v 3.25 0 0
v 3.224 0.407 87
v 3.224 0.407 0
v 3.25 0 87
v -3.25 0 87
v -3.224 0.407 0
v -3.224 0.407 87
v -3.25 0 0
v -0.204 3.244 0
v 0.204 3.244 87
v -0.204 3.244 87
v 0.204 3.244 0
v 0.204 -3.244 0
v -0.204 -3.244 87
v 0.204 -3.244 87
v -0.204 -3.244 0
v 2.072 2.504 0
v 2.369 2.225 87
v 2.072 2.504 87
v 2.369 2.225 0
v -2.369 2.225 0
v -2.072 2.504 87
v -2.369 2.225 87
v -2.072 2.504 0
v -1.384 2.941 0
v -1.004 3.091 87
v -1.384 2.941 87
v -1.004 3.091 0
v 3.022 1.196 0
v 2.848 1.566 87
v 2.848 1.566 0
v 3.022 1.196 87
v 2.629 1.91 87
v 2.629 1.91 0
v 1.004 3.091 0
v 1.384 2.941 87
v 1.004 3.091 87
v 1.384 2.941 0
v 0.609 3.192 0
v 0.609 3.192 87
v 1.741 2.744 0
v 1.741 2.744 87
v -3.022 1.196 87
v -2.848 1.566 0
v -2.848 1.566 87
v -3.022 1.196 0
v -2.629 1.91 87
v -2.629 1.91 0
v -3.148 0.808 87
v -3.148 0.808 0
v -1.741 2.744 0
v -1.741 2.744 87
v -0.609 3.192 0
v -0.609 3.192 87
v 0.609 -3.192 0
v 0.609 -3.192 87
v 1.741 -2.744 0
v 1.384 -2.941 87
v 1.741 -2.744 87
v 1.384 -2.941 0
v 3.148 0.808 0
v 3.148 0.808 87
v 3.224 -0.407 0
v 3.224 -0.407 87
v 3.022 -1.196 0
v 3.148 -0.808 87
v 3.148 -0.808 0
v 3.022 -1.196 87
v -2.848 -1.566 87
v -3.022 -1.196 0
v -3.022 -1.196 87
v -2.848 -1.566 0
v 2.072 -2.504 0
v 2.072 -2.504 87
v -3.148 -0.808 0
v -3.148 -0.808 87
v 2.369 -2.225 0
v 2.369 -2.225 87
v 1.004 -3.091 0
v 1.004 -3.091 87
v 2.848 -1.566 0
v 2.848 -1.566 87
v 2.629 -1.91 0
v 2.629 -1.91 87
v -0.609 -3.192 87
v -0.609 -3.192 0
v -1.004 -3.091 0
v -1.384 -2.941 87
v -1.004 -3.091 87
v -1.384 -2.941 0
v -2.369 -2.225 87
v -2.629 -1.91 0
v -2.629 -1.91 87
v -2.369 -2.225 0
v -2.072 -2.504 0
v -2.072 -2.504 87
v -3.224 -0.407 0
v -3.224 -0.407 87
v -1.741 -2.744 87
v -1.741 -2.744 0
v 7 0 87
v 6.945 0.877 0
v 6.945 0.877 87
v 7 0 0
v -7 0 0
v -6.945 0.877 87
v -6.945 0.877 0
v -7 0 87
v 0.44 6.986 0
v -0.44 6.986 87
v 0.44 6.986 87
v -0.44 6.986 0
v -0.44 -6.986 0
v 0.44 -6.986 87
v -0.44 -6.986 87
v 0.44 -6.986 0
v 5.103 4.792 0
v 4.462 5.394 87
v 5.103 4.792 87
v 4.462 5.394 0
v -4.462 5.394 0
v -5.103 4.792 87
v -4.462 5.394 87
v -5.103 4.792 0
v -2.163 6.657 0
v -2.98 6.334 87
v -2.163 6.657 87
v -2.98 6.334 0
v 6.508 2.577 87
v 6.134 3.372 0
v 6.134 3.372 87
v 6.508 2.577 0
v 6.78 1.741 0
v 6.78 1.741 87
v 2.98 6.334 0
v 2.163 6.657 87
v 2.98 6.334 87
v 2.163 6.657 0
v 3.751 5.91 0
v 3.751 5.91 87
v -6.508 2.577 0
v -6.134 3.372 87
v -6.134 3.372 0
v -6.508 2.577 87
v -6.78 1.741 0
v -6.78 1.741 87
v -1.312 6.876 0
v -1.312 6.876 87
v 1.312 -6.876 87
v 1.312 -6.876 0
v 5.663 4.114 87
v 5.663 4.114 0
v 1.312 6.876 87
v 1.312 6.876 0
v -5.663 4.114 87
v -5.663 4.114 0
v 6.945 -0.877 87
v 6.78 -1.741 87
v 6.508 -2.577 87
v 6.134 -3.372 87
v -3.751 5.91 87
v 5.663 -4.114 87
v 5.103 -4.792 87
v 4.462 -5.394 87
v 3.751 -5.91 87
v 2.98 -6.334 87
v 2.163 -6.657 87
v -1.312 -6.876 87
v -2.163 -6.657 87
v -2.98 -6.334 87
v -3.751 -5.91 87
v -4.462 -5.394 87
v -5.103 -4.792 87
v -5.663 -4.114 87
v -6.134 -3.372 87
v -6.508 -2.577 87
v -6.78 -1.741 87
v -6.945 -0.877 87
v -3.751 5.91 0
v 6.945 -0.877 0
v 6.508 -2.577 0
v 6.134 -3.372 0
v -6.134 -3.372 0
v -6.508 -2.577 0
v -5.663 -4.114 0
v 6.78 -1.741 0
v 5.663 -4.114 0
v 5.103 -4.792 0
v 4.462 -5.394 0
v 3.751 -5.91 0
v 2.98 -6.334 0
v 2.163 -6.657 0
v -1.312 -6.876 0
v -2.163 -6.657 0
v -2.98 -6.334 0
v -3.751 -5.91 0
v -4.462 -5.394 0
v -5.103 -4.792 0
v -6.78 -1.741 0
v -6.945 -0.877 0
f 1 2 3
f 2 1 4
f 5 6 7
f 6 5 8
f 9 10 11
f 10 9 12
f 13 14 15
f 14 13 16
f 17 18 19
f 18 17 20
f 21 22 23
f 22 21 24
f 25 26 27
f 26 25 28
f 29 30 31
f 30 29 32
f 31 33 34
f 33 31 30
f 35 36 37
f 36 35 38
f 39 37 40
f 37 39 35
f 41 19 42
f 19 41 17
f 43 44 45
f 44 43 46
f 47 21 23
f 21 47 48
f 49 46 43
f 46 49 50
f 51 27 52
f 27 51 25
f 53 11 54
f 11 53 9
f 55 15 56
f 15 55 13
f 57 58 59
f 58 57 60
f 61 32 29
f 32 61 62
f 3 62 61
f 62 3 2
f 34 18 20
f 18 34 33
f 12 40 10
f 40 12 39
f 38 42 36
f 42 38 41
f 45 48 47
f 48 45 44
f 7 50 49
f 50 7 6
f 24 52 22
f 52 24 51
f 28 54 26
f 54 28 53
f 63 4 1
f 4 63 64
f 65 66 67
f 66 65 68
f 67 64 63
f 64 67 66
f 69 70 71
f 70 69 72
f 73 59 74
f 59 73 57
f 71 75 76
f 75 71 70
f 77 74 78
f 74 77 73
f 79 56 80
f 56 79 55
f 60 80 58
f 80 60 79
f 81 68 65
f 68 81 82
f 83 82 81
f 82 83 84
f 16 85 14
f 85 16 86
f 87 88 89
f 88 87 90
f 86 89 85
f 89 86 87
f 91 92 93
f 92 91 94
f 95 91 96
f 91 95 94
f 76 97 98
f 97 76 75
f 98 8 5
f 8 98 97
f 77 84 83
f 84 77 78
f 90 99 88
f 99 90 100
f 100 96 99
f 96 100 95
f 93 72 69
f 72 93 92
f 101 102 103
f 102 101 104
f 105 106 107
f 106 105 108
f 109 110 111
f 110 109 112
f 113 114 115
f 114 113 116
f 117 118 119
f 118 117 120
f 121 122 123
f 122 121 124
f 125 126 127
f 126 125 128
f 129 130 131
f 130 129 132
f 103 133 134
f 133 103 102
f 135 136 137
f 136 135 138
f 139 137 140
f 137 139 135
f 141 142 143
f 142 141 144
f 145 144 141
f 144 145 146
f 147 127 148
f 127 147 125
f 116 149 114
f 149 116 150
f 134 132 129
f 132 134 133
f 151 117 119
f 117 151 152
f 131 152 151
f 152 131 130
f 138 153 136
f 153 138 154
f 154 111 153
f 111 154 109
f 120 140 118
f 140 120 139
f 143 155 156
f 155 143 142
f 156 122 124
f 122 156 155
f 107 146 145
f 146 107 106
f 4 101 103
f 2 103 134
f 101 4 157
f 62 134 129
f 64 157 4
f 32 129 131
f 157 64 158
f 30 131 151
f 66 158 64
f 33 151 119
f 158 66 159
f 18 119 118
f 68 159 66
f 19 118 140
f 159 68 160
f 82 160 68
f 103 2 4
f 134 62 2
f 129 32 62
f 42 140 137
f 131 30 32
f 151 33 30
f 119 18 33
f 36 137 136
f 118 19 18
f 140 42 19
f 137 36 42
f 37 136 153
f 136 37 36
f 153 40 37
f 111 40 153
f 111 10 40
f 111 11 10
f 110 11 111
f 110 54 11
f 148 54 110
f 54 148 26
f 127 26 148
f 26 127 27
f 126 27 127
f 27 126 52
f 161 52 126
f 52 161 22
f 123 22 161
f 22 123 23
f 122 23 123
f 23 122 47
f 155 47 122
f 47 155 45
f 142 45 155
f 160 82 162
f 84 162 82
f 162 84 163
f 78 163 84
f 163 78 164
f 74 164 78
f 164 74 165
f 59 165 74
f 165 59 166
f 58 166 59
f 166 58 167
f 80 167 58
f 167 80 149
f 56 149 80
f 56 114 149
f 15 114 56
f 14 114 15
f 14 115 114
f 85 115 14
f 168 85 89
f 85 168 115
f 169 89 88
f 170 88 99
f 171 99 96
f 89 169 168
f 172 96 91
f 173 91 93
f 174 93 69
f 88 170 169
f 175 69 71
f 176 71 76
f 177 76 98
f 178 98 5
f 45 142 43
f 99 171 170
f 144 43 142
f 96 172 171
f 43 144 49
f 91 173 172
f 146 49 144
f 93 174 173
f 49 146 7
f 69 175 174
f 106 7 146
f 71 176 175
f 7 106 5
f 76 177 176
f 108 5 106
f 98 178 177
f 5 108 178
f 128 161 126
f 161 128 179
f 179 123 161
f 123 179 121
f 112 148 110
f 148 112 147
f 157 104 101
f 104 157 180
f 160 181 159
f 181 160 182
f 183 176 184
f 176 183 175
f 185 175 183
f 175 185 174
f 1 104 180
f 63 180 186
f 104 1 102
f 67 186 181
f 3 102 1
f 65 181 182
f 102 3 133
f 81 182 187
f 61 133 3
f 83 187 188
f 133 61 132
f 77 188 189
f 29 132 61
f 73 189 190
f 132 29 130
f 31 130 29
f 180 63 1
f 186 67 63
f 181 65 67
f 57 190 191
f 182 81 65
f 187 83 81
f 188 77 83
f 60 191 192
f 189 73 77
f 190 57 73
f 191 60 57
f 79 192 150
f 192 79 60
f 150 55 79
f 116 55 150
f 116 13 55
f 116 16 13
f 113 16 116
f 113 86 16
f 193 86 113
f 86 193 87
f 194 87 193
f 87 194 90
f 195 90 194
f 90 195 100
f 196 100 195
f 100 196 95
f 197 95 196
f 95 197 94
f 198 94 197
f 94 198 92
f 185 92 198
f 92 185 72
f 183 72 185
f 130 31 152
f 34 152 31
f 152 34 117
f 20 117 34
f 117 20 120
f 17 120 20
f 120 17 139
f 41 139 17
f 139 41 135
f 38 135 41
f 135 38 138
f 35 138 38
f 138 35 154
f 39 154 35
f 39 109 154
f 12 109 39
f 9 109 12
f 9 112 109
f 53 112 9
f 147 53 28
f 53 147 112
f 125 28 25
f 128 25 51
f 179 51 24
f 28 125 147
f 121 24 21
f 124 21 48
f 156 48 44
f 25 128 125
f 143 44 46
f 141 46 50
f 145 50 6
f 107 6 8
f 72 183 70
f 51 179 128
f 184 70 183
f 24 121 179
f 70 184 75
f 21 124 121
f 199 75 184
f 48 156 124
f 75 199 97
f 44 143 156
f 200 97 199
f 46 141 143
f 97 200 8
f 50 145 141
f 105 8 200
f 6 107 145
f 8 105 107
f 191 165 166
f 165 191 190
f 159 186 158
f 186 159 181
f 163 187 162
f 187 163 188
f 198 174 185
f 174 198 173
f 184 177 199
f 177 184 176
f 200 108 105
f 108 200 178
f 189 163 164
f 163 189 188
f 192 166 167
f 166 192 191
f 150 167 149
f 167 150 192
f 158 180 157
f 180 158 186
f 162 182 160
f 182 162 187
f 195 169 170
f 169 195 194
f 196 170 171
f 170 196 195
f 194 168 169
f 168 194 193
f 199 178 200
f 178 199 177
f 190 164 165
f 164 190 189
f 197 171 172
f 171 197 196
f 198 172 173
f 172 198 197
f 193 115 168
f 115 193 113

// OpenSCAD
$fn = 50;


difference() {
	union() {
		cylinder(h = 87, r = 7.0000000000);
	}
	union() {
		cylinder(h = 87, r = 3.2500000000);
		cylinder(h = 87, r = 1.8000000000);
		cylinder(h = 87, r = 1.8000000000);
		cylinder(h = 87, r = 1.8000000000);
	}
}
